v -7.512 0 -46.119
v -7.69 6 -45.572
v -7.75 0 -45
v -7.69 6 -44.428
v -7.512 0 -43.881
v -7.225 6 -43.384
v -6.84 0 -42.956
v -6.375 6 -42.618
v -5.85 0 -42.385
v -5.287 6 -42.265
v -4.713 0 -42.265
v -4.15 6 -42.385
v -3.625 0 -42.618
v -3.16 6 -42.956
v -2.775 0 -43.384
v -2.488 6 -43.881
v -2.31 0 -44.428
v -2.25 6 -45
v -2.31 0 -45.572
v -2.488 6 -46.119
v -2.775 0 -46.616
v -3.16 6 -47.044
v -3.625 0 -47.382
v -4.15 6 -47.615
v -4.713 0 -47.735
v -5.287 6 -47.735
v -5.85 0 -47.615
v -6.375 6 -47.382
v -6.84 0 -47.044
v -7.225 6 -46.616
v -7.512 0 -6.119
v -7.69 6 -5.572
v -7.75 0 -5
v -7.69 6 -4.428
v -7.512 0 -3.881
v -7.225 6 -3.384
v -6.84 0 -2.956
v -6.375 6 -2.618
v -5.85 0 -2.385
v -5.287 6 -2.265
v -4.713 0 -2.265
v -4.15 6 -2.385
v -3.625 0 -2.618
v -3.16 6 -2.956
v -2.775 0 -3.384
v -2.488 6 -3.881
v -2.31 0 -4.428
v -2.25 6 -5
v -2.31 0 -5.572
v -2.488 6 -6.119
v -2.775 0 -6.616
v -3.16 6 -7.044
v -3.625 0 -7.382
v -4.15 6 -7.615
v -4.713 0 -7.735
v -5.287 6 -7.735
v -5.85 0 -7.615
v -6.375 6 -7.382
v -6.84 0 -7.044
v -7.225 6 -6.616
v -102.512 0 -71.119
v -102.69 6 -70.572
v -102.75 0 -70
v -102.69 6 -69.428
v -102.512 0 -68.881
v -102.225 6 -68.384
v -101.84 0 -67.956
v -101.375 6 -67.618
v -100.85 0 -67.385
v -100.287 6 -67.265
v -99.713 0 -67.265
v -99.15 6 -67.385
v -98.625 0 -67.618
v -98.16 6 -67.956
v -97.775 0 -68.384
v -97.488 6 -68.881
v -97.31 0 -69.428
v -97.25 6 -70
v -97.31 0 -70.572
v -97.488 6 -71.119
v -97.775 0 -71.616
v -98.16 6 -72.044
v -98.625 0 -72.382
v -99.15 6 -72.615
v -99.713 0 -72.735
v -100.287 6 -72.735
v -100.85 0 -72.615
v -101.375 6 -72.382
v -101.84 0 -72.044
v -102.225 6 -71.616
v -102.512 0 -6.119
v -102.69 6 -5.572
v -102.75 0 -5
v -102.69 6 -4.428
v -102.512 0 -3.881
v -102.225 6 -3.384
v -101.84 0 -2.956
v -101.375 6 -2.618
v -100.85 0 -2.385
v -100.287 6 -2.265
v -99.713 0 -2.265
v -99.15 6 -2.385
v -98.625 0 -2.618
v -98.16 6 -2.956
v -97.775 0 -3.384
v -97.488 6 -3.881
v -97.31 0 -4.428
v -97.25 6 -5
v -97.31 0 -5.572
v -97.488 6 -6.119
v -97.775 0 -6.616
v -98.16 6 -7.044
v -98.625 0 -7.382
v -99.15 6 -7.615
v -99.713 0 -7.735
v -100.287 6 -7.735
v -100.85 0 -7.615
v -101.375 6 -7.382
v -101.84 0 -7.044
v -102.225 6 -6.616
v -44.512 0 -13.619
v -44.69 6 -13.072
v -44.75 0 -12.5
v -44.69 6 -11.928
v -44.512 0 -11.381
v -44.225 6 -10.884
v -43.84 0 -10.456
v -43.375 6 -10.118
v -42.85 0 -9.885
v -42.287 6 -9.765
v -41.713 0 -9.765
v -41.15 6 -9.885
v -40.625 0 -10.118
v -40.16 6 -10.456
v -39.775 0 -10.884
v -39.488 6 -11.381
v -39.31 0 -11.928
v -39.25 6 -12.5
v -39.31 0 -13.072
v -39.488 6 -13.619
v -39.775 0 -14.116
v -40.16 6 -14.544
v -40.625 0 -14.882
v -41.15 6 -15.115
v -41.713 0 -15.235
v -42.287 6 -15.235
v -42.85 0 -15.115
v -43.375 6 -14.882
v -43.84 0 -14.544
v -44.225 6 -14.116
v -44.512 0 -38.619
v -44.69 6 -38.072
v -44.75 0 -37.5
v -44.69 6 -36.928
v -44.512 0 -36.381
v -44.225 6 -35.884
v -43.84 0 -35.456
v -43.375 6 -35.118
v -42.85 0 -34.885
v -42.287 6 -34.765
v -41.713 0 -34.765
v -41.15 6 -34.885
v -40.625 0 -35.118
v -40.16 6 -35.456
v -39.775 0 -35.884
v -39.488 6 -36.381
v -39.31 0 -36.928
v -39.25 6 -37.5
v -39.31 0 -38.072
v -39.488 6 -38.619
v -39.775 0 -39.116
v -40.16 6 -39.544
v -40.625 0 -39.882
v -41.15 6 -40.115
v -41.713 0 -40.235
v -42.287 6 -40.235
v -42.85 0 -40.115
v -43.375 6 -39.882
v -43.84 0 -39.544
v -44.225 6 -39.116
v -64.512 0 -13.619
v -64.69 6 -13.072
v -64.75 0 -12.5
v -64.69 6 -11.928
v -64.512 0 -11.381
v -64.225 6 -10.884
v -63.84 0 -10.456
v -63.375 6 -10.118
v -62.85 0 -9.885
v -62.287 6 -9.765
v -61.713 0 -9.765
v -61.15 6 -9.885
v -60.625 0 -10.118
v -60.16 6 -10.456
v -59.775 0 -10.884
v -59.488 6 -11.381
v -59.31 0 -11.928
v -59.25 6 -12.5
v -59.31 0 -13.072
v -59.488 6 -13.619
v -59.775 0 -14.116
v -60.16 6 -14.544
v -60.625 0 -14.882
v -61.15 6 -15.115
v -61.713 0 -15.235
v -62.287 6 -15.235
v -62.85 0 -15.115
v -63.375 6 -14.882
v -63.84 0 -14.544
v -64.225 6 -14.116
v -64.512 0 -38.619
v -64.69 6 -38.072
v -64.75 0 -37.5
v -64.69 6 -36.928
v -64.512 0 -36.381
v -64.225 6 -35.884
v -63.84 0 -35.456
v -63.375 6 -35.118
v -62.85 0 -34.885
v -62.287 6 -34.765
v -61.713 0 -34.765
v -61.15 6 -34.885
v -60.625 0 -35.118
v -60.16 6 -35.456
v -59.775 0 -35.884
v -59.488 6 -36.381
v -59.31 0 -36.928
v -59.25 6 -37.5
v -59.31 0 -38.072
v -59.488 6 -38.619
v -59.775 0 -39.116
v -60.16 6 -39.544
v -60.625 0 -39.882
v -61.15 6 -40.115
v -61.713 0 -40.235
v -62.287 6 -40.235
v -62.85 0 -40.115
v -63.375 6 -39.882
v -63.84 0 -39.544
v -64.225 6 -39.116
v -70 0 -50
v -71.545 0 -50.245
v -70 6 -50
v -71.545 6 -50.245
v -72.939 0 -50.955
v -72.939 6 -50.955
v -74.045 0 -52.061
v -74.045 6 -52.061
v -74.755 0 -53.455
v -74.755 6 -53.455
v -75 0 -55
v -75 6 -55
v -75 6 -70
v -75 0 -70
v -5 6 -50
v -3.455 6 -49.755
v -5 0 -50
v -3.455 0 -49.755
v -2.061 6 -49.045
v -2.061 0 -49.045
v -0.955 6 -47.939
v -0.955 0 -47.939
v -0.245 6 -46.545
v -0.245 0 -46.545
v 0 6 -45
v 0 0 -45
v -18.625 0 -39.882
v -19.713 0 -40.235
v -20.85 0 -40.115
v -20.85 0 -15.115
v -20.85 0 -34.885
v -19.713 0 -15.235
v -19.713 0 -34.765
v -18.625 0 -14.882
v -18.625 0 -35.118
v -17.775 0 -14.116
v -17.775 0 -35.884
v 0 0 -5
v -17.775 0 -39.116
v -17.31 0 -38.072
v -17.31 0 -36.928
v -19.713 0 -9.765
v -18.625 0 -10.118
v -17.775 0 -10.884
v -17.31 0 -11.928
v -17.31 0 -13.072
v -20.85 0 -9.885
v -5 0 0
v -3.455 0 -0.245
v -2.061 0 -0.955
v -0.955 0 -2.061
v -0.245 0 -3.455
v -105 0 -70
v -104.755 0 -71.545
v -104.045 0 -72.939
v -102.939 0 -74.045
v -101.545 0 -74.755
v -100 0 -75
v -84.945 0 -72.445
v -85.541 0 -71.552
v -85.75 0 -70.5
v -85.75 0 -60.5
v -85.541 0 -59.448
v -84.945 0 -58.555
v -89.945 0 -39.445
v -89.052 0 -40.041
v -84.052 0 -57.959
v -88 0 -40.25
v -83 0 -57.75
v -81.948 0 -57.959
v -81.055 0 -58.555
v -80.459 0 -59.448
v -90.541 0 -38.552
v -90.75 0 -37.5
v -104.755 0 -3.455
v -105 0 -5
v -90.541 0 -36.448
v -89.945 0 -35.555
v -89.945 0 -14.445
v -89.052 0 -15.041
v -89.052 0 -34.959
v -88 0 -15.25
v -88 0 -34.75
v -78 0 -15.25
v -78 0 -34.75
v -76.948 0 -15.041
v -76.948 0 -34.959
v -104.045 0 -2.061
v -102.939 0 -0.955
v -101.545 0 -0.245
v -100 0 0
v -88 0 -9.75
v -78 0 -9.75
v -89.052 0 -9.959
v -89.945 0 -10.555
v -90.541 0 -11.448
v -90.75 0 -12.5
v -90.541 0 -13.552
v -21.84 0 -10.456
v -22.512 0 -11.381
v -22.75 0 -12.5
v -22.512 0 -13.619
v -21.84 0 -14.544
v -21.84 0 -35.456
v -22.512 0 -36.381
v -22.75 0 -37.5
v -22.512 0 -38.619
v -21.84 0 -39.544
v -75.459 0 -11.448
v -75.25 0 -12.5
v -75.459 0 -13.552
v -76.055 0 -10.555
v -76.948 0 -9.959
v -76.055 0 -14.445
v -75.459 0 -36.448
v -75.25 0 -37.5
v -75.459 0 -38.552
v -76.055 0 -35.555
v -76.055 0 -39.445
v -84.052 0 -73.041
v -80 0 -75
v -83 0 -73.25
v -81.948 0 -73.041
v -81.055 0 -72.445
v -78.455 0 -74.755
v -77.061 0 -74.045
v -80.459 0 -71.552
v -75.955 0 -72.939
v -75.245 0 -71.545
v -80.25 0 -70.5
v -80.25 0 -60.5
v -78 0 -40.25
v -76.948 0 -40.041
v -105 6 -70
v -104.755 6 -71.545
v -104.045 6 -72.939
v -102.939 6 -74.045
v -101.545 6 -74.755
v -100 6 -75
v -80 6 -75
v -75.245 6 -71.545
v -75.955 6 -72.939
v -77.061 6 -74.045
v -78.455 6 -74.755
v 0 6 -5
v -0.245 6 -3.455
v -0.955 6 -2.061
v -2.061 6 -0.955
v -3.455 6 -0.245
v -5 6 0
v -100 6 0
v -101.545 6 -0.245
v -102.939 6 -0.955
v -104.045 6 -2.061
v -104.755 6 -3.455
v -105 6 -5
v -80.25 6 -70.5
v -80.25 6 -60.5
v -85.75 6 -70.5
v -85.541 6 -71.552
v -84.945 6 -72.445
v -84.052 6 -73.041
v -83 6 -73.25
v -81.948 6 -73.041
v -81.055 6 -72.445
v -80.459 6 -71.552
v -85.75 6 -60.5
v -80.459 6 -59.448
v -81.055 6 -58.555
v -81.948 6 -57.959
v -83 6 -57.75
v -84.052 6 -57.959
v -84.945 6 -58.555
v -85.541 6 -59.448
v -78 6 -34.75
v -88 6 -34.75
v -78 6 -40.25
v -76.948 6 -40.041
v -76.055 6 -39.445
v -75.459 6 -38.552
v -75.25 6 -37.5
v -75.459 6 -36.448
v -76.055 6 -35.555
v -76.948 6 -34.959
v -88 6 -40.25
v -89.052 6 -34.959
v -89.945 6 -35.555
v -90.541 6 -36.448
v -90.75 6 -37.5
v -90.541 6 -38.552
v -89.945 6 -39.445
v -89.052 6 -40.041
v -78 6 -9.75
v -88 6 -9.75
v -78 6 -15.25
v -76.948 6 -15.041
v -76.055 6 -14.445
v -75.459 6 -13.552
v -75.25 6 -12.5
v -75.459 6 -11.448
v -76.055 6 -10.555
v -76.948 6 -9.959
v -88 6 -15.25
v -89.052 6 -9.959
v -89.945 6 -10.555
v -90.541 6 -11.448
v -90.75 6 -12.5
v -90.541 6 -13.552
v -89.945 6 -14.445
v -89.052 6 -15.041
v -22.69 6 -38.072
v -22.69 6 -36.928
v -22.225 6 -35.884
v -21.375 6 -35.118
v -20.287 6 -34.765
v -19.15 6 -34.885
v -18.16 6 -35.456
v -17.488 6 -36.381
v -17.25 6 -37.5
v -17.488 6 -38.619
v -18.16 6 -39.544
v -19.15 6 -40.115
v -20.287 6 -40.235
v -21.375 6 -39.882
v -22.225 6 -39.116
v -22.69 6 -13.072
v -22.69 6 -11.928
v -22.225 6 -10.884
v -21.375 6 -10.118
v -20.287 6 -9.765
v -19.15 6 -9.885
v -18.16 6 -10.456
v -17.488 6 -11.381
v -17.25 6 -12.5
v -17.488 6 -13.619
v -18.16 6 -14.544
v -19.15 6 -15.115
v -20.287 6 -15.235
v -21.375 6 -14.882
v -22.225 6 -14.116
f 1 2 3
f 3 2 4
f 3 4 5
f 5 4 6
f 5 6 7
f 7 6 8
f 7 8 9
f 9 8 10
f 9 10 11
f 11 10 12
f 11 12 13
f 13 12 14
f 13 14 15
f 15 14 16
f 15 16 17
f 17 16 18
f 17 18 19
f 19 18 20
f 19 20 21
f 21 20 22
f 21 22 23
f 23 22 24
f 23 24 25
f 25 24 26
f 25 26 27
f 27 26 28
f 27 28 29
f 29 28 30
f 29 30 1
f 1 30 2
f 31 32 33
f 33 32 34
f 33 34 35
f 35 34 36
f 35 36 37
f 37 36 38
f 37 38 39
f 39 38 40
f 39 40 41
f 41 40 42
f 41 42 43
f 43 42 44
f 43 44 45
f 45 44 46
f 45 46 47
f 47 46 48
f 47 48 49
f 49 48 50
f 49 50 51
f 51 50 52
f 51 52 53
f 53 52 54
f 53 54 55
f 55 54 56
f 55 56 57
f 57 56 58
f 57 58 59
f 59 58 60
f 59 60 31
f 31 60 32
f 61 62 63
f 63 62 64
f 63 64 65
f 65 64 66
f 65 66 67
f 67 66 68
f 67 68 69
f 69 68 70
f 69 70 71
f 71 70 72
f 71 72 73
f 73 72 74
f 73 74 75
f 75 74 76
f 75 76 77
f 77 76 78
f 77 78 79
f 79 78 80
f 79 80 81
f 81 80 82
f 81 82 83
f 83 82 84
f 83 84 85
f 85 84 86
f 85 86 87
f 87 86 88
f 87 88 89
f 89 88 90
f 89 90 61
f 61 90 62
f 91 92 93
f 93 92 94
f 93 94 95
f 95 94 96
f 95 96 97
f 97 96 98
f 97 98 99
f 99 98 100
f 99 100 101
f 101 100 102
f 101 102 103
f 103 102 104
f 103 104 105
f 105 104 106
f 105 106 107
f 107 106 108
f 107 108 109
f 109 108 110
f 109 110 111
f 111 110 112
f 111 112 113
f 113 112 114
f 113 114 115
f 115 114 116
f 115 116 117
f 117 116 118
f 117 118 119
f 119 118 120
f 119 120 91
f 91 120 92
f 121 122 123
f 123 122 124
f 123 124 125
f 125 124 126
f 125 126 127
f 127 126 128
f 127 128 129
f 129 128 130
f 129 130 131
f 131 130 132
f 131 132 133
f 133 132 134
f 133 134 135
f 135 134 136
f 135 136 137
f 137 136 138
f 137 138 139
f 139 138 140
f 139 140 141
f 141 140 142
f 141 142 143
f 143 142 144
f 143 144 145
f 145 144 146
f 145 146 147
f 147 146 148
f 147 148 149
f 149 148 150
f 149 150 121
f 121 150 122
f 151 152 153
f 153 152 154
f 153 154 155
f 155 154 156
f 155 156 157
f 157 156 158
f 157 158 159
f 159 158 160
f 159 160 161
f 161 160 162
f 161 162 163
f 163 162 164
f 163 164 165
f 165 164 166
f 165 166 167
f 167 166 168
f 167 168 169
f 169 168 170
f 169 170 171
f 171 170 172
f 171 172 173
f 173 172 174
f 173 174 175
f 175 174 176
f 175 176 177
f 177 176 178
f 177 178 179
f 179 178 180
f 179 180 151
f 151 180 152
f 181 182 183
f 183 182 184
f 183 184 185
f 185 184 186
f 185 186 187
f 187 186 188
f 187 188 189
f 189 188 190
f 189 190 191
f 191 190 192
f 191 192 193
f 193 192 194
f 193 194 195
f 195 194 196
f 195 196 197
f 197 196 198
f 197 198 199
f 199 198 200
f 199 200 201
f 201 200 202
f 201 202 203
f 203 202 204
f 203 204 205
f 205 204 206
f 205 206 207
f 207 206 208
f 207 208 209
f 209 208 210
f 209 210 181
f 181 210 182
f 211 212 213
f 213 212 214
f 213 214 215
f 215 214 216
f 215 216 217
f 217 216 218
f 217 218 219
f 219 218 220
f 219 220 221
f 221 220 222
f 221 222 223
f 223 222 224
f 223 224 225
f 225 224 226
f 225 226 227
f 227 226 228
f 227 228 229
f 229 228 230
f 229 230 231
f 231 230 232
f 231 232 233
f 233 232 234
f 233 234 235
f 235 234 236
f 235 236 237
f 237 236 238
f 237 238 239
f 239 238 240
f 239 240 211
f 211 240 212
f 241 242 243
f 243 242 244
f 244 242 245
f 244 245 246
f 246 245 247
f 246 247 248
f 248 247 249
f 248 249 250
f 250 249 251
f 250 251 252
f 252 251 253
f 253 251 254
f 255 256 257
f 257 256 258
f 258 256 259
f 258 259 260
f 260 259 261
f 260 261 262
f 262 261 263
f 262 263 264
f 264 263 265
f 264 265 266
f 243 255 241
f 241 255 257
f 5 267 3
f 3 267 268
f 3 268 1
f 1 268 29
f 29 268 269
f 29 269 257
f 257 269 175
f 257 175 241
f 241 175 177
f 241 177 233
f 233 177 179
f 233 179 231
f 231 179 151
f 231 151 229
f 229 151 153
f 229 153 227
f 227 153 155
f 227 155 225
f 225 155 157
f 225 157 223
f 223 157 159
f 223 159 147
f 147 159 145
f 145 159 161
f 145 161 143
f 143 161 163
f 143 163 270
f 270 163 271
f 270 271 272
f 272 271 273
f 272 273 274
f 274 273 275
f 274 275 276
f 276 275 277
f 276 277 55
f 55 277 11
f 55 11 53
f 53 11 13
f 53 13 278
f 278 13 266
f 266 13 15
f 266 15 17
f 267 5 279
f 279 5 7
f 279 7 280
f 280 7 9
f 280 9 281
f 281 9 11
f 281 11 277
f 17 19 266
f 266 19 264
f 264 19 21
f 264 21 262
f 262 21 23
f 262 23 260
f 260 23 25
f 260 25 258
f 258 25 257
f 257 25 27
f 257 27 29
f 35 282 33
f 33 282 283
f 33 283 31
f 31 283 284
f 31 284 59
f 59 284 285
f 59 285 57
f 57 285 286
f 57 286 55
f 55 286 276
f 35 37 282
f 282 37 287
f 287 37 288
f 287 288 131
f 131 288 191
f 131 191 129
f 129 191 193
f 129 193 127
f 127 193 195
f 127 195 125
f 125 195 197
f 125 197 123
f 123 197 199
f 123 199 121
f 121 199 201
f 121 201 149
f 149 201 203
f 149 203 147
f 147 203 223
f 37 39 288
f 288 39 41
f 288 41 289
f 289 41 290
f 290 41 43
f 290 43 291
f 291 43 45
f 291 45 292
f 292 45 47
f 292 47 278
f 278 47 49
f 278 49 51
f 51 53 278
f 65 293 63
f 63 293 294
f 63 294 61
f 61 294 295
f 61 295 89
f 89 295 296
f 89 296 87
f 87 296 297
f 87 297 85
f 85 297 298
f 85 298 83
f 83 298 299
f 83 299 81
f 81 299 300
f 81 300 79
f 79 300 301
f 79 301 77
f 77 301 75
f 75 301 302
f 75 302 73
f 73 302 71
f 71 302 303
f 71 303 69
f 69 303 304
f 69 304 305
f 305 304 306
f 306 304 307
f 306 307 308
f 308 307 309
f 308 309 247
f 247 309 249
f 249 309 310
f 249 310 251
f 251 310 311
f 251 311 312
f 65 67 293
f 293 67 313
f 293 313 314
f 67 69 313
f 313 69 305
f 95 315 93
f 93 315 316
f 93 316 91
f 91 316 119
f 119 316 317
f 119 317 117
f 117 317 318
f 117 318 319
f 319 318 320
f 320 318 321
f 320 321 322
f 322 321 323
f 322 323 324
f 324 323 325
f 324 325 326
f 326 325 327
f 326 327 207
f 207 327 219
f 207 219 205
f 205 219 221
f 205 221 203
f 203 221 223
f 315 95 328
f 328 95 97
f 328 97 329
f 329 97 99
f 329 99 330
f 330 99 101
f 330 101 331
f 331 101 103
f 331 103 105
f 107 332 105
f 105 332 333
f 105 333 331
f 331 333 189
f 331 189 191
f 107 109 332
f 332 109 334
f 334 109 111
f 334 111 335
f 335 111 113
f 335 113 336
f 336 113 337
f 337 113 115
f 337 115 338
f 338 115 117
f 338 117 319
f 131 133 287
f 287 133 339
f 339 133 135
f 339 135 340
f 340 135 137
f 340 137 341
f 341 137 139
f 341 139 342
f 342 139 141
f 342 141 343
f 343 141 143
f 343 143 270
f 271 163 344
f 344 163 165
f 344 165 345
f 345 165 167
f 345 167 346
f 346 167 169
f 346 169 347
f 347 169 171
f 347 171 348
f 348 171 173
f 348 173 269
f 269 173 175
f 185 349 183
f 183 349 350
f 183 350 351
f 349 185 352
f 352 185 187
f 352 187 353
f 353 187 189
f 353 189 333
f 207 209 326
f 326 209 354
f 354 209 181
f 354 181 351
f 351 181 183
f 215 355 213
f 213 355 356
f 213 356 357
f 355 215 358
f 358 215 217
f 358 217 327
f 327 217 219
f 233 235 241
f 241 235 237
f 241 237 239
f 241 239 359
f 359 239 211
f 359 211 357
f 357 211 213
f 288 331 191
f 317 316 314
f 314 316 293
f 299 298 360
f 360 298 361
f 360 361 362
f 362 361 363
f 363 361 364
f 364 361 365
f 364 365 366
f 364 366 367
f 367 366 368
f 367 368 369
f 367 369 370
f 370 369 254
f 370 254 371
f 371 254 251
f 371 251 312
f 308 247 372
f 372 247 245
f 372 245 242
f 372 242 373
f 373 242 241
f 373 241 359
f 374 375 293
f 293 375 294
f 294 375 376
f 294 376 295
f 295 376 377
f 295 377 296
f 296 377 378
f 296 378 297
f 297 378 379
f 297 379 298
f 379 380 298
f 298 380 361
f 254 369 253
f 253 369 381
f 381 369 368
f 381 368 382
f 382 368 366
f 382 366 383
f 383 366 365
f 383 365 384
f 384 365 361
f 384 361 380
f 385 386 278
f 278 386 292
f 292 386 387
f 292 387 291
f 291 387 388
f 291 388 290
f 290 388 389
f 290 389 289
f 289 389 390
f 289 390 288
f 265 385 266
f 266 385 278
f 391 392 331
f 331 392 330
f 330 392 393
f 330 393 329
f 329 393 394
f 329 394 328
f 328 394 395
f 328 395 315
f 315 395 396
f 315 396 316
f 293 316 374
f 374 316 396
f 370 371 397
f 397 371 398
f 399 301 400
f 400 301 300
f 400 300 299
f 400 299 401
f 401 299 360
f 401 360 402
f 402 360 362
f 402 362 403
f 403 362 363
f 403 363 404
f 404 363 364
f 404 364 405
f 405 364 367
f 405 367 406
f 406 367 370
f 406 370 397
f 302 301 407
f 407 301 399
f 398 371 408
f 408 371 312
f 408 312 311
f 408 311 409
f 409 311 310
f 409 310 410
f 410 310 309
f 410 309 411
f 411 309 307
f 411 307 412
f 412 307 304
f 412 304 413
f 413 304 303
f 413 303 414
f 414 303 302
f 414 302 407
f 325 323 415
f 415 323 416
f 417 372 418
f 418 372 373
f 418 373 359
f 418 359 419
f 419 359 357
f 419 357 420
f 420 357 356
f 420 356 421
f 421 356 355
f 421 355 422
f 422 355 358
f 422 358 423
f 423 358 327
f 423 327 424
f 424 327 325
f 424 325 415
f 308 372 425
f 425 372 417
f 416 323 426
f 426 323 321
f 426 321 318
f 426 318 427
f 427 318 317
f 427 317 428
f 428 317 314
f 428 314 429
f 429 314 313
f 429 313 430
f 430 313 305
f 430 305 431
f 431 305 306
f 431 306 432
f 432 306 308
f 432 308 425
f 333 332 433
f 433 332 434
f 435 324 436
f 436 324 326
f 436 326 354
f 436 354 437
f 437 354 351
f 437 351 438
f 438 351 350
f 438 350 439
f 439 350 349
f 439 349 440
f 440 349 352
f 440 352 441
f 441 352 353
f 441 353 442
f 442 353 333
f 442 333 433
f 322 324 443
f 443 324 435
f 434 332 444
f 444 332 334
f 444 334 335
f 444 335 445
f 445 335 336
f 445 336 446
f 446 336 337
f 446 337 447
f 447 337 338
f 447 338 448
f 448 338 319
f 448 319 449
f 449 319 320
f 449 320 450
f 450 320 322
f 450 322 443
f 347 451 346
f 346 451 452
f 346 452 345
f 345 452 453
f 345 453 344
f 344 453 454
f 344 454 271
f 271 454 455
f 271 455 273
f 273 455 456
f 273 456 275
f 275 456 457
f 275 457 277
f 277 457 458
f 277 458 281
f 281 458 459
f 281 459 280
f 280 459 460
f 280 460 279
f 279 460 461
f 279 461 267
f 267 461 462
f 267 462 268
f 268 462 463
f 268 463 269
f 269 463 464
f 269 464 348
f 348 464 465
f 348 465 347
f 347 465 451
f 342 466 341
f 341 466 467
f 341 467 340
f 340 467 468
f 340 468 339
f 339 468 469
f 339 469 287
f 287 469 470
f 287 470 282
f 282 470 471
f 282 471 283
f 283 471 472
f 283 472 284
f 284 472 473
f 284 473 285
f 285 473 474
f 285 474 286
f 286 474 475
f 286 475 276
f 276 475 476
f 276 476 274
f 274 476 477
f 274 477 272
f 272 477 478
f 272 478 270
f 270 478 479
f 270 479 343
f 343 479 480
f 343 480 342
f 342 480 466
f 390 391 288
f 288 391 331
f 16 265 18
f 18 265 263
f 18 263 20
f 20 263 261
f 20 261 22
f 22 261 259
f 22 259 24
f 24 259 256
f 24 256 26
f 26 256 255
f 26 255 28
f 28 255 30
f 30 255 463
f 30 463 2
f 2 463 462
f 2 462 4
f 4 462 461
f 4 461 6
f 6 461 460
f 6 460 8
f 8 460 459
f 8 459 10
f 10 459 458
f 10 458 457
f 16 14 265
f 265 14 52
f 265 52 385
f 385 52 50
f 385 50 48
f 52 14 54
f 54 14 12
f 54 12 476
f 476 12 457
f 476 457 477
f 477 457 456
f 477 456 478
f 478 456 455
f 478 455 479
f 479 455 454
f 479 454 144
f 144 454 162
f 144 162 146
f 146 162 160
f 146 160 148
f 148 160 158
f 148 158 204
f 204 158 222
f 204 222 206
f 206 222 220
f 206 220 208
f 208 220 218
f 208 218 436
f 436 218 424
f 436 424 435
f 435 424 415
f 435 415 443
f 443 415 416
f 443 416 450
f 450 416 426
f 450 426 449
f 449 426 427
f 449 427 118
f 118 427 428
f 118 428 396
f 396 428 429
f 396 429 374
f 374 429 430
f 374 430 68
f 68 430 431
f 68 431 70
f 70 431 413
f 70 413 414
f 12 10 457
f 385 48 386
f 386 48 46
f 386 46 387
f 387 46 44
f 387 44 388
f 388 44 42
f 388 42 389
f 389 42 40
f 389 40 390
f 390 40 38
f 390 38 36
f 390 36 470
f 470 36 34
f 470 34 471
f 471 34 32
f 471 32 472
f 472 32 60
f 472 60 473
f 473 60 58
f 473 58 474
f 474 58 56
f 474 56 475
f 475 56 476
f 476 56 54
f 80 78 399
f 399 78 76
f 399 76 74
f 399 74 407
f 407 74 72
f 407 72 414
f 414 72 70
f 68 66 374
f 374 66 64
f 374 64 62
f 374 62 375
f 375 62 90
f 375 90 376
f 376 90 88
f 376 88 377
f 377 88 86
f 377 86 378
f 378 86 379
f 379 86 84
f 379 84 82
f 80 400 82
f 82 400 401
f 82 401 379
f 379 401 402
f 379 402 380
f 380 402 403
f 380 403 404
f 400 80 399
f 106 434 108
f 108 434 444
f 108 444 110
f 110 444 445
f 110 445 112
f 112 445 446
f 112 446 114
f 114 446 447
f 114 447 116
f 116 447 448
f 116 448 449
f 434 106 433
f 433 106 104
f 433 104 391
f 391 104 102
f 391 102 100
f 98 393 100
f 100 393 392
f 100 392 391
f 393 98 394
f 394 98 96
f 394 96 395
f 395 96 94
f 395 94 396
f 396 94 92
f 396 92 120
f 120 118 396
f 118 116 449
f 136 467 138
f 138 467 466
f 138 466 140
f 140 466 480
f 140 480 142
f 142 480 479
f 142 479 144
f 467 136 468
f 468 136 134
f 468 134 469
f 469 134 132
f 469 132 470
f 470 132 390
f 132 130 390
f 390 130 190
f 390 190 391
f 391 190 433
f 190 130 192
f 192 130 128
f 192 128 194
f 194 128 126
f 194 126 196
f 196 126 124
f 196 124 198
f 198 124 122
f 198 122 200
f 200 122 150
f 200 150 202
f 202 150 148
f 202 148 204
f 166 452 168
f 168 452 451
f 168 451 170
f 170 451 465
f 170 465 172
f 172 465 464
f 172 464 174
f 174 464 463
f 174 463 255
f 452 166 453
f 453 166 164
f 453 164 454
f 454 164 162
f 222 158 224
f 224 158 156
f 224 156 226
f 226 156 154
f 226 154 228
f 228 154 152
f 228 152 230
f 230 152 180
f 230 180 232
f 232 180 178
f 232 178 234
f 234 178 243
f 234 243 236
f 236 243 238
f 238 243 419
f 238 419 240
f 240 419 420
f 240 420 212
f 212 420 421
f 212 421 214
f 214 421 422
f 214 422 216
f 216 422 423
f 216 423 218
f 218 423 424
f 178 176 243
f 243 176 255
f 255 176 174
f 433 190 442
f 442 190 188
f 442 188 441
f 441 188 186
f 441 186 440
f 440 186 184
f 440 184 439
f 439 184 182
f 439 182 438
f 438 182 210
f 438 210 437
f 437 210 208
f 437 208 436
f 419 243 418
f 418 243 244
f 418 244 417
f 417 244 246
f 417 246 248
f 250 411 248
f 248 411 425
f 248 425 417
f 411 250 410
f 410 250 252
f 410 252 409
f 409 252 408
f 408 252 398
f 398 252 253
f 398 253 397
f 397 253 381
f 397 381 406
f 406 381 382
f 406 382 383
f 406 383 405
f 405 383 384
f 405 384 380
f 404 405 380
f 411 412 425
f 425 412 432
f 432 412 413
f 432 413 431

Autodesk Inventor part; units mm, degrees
ref_plane "YZ Plane" through (0, 0, 0) normal (1, 0, 0) x (0, 1, 0)
ref_plane "XZ Plane" through (0, 0, 0) normal (0, 1, 0) x (-1, 0, 0)
ref_plane "XY Plane" through (0, 0, 0) normal (0, 0, 1) x (1, 0, 0)
sketch "Sketch1" plane through (0, 0, 0) normal (0, 1, 0) x (-1, 0, 0)
  line L0 (0, 0) -> (105, 0)
  line L1 (105, 0) -> (105, -50)
  line L2 (105, -50) -> (0, -50)
  line L3 (0, -50) -> (0, 0)
  line L4 (0, 0) -> (0, -16.6667)
  line L5 (0, -16.6667) -> (11, -16.6667)
  dimension "d0" = 105
  dimension "d1" = 50
  dimension "d2" = 16.6667
  dimension "d3" = 11
extrude "Extrusion1" add sketch "Sketch1" along normal blind 6
sketch "Sketch3" plane through (0, 6, 0) normal (0, 1, 0) x (1, 0, 0)
  circle A0 centre (-20, 12.5) radius 2.75
  line L0 (0, 0) -> (0, 50) projected
  line L1 (-105, 0) -> (0, 0) projected
  circle A1 centre (-20, 37.5) radius 2.75
  dimension "d21" = 5.5
  dimension "d22" = 20
  dimension "d23" = 12.5
  dimension "d26" = 25
extrude "Extrusion3" cut sketch "Sketch3" against normal through all
sketch "Sketch4" plane through (0, 6, 0) normal (0, 1, 0) x (1, 0, 0)
  circle A0 centre (-20, 12.5) radius 2.75 projected
  line L0 (-20, 12.5) -> (-78, 12.5)
  line L1 (-78, 12.5) -> (-88, 12.5) construction
  line L2 (-78, 15.25) -> (-88, 15.25)
  line L3 (-88, 9.75) -> (-78, 9.75)
  arc A1 (-78, 9.75) -> (-78, 15.25) centre (-78, 12.5) ccw
  arc A2 (-88, 15.25) -> (-88, 9.75) centre (-88, 12.5) ccw
  point P0 (0, 0)
  point P1 (-83, 12.5)
  dimension "d33" = 58
  dimension "d34" = 10
  dimension "d35" = 5.5
extrude "Extrusion4" cut sketch "Sketch4" against normal through all contours A1 L3 A2 L2
pattern_linear "Rectangular Pattern2" count 2 spacing 25 along (0, 0, -1) of "Extrusion4"
sketch "Sketch5" plane through (0, 0, -50) normal (0, 0, -1) x (-1, 0, 0)
  line L0 (105, 0) -> (105, 6) projected
  line L1 (105, 0) -> (0, 0) projected
  line L2 (105, 6) -> (75, 6)
  line L3 (75, 6) -> (75, 0)
  line L4 (75, 0) -> (105, 0)
  line L5 (105, 0) -> (105, 6)
  dimension "d45" = 30
extrude "Extrusion5" add sketch "Sketch5" along normal blind 25
sketch "Sketch6" plane through (0, 6, 0) normal (0, 1, 0) x (1, 0, 0)
  line L0 (-83, 60.5) -> (-83, 70.5) construction
  line L1 (-80.25, 60.5) -> (-80.25, 70.5)
  line L2 (-85.75, 70.5) -> (-85.75, 60.5)
  arc A0 (-85.75, 60.5) -> (-80.25, 60.5) centre (-83, 60.5) ccw
  arc A1 (-80.25, 70.5) -> (-85.75, 70.5) centre (-83, 70.5) ccw
  line L3 (-75, 50) -> (-75, 75) projected
  arc A2 (-88, 40.25) -> (-88, 34.75) centre (-88, 37.5) ccw projected
  point P0 (0, 0)
  point P1 (-83, 65.5)
  dimension "d48" = 10
  dimension "d49" = 5.5
  dimension "d50" = 8
  dimension "d51" = 28
extrude "Extrusion6" cut sketch "Sketch6" against normal through all
fillet "Fillet2" radius 5 6 edges at (-105, 3, 0) (0, 3, 0) (-75, 3, -75) (-105, 3, -75) (0, 3, -50) (-75, 3, -50)
sketch "Sketch7" plane through (0, 6, 0) normal (0, 1, 0) x (1, 0, 0)
  circle A0 centre (-20, 12.5) radius 2.75 projected
  line L0 (-20, 12.5) -> (-42, 12.5)
  line L1 (-42, 12.5) -> (-62, 12.5)
  circle A1 centre (-62, 12.5) radius 2.75
  circle A2 centre (-42, 12.5) radius 2.75
  line L2 (0, 5) -> (0, 45) projected
  line L3 (0, 0) -> (0, 45)
  circle A3 centre (-42, 37.5) radius 2.75
  circle A4 centre (-62, 37.5) radius 2.75
  dimension "d55" = 22
  dimension "d56" = 20
  dimension "d57" = 5.5
  dimension "d58" = 5.5
  dimension "d61" = 25
extrude "Extrusion7" cut sketch "Sketch7" against normal through all contours A1 | A2 L1 L0 | L0 L1 A2 | A3 | A4
sketch "Sketch9" plane through (0, 6, 0) normal (0, 1, 0) x (1, 0, 0)
  point P0 (0, 0)
sketch "Sketch10" plane through (0, 6, 0) normal (0, 1, 0) x (1, 0, 0)
  circle A0 centre (-100, 70) radius 2.75
  line L0 (-100, 75) -> (-80, 75) projected
  line L1 (-105, 5) -> (-105, 70) projected
  circle A1 centre (-100, 5) radius 2.75
  line L2 (-100, 0) -> (-5, 0) projected
  circle A2 centre (-5, 45) radius 2.75
  line L3 (-5, 50) -> (-70, 50) projected
  line L4 (0, 5) -> (0, 45) projected
  circle A3 centre (-5, 5) radius 2.75
  point P0 (0, 0)
  dimension "d70" = 5.5
  dimension "d71" = 5
  dimension "d72" = 5
  dimension "d73" = 5.5
  dimension "d74" = 5
  dimension "d75" = 5
  dimension "d76" = 5.5
  dimension "d77" = 5
  dimension "d78" = 5
  dimension "d79" = 5.5
  dimension "d80" = 5
  dimension "d81" = 5
extrude "Extrusion9" cut sketch "Sketch10" against normal through all
properties part number "X_Carriage_Plate"
